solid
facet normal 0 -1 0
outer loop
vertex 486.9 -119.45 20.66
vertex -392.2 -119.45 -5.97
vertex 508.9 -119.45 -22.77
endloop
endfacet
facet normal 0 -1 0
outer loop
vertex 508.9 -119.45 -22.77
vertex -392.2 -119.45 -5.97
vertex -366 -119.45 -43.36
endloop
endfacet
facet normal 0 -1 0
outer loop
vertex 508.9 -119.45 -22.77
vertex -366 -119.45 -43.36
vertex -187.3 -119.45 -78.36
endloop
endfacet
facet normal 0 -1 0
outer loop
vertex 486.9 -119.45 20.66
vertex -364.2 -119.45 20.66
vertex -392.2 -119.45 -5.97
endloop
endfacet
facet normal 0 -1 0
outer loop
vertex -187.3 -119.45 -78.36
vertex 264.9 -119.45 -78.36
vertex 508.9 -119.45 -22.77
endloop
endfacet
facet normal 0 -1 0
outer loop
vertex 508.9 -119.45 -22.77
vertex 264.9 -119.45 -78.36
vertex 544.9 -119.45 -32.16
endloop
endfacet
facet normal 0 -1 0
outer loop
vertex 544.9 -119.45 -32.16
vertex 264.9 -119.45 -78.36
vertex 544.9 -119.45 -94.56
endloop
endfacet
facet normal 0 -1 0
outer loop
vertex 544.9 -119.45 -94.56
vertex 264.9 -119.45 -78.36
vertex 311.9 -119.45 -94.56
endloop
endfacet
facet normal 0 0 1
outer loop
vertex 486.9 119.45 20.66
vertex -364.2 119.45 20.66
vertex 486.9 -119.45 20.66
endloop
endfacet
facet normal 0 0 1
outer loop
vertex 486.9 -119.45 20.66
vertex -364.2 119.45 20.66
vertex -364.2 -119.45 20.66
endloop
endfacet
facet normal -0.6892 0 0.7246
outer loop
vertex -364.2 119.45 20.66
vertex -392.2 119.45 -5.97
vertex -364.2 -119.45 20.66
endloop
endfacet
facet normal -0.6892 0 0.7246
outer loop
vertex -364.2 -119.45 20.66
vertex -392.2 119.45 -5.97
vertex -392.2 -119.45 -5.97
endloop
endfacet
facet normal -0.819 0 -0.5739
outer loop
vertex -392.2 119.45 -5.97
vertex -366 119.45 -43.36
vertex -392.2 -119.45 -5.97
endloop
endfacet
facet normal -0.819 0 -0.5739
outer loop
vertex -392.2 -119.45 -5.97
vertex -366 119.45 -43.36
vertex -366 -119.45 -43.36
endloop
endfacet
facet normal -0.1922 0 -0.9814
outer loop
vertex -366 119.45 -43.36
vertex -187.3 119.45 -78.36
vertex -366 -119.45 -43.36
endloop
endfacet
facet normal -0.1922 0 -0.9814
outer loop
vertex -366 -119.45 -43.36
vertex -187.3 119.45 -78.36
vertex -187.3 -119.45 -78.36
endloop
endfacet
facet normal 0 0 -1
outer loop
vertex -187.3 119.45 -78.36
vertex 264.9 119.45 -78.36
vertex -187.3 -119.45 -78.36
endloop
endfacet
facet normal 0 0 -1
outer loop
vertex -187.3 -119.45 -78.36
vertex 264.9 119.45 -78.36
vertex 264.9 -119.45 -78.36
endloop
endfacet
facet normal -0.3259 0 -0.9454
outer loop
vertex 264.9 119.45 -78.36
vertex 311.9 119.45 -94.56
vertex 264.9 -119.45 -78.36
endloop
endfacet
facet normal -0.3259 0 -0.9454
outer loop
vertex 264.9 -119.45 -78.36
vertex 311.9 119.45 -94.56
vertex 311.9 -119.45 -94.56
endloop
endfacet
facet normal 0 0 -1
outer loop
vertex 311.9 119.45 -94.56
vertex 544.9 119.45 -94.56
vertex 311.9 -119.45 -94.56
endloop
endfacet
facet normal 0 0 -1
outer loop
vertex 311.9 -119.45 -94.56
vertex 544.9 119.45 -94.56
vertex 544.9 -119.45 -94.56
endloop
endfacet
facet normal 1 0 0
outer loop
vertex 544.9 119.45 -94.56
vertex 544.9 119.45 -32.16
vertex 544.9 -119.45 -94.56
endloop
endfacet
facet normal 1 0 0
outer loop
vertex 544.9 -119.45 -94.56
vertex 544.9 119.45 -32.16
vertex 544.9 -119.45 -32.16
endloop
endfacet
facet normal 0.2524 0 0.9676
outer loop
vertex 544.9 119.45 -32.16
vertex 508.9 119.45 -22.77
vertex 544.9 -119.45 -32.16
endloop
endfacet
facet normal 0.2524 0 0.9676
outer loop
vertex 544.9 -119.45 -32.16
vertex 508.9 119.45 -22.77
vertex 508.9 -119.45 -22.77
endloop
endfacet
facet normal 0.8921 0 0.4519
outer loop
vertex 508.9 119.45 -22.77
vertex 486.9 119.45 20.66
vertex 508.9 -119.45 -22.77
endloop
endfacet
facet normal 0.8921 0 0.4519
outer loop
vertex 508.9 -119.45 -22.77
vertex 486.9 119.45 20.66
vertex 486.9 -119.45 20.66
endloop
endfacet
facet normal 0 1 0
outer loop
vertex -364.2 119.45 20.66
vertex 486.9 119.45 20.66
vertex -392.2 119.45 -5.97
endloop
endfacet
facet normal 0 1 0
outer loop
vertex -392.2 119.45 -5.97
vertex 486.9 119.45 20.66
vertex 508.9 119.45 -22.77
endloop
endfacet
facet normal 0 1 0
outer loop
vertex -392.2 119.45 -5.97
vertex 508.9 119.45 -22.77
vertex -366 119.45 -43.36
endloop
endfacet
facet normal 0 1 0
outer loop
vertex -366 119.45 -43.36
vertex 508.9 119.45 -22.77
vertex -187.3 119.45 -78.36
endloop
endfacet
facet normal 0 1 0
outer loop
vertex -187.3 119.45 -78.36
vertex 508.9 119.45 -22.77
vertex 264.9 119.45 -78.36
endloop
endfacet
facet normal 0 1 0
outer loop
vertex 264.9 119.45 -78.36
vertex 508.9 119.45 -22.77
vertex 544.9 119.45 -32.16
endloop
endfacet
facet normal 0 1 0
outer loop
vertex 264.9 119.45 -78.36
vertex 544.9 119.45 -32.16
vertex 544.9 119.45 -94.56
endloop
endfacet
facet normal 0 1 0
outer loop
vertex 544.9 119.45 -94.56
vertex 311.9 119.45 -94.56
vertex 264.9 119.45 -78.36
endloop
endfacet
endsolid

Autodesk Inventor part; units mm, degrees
ref_plane "YZ Plane" through (0, 0, 0) normal (1, 0, 0) x (0, 1, 0)
ref_plane "XZ Plane" through (0, 0, 0) normal (0, 1, 0) x (-1, 0, 0)
ref_plane "XY Plane" through (0, 0, 0) normal (0, 0, 1) x (1, 0, 0)
sketch "Sketch1" plane through (0, 0, 0) normal (0, 1, 0) x (-1, 0, 0)
  line L0 (364.2, 20.66) -> (392.2, -5.97)
  line L1 (392.2, -5.97) -> (366, -43.36)
  line L2 (366, -43.36) -> (187.3, -78.36)
  line L3 (187.3, -78.36) -> (-264.9, -78.36)
  line L4 (-264.9, -78.36) -> (-311.9, -94.56)
  line L5 (-311.9, -94.56) -> (-544.9, -94.56)
  line L6 (-544.9, -94.56) -> (-544.9, -32.16)
  line L7 (-544.9, -32.16) -> (-508.9, -22.77)
  line L8 (-508.9, -22.77) -> (-486.9, 20.66)
  line L9 (364.2, 20.66) -> (-486.9, 20.66)
  point P0 (0, 0)
  dimension "d0" = 20.66
  dimension "d1" = 5.97
  dimension "d2" = 43.36
  dimension "d3" = 78.36
  dimension "d4" = 78.36
  dimension "d5" = 94.56
  dimension "d6" = 94.56
  dimension "d7" = 32.16
  dimension "d8" = 22.77
  dimension "d9" = 20.66
  dimension "d10" = 364.2
  dimension "d11" = 392.2
  dimension "d12" = 366
  dimension "d13" = 187.3
  dimension "d14" = 264.9
  dimension "d15" = 311.9
  dimension "d16" = 544.9
  dimension "d17" = 544.9
  dimension "d18" = 508.9
  dimension "d19" = 486.9
extrude "Extrusion1" add sketch "Sketch1" along normal mid plane 238.9
properties part number "Friend_hull_collision"
